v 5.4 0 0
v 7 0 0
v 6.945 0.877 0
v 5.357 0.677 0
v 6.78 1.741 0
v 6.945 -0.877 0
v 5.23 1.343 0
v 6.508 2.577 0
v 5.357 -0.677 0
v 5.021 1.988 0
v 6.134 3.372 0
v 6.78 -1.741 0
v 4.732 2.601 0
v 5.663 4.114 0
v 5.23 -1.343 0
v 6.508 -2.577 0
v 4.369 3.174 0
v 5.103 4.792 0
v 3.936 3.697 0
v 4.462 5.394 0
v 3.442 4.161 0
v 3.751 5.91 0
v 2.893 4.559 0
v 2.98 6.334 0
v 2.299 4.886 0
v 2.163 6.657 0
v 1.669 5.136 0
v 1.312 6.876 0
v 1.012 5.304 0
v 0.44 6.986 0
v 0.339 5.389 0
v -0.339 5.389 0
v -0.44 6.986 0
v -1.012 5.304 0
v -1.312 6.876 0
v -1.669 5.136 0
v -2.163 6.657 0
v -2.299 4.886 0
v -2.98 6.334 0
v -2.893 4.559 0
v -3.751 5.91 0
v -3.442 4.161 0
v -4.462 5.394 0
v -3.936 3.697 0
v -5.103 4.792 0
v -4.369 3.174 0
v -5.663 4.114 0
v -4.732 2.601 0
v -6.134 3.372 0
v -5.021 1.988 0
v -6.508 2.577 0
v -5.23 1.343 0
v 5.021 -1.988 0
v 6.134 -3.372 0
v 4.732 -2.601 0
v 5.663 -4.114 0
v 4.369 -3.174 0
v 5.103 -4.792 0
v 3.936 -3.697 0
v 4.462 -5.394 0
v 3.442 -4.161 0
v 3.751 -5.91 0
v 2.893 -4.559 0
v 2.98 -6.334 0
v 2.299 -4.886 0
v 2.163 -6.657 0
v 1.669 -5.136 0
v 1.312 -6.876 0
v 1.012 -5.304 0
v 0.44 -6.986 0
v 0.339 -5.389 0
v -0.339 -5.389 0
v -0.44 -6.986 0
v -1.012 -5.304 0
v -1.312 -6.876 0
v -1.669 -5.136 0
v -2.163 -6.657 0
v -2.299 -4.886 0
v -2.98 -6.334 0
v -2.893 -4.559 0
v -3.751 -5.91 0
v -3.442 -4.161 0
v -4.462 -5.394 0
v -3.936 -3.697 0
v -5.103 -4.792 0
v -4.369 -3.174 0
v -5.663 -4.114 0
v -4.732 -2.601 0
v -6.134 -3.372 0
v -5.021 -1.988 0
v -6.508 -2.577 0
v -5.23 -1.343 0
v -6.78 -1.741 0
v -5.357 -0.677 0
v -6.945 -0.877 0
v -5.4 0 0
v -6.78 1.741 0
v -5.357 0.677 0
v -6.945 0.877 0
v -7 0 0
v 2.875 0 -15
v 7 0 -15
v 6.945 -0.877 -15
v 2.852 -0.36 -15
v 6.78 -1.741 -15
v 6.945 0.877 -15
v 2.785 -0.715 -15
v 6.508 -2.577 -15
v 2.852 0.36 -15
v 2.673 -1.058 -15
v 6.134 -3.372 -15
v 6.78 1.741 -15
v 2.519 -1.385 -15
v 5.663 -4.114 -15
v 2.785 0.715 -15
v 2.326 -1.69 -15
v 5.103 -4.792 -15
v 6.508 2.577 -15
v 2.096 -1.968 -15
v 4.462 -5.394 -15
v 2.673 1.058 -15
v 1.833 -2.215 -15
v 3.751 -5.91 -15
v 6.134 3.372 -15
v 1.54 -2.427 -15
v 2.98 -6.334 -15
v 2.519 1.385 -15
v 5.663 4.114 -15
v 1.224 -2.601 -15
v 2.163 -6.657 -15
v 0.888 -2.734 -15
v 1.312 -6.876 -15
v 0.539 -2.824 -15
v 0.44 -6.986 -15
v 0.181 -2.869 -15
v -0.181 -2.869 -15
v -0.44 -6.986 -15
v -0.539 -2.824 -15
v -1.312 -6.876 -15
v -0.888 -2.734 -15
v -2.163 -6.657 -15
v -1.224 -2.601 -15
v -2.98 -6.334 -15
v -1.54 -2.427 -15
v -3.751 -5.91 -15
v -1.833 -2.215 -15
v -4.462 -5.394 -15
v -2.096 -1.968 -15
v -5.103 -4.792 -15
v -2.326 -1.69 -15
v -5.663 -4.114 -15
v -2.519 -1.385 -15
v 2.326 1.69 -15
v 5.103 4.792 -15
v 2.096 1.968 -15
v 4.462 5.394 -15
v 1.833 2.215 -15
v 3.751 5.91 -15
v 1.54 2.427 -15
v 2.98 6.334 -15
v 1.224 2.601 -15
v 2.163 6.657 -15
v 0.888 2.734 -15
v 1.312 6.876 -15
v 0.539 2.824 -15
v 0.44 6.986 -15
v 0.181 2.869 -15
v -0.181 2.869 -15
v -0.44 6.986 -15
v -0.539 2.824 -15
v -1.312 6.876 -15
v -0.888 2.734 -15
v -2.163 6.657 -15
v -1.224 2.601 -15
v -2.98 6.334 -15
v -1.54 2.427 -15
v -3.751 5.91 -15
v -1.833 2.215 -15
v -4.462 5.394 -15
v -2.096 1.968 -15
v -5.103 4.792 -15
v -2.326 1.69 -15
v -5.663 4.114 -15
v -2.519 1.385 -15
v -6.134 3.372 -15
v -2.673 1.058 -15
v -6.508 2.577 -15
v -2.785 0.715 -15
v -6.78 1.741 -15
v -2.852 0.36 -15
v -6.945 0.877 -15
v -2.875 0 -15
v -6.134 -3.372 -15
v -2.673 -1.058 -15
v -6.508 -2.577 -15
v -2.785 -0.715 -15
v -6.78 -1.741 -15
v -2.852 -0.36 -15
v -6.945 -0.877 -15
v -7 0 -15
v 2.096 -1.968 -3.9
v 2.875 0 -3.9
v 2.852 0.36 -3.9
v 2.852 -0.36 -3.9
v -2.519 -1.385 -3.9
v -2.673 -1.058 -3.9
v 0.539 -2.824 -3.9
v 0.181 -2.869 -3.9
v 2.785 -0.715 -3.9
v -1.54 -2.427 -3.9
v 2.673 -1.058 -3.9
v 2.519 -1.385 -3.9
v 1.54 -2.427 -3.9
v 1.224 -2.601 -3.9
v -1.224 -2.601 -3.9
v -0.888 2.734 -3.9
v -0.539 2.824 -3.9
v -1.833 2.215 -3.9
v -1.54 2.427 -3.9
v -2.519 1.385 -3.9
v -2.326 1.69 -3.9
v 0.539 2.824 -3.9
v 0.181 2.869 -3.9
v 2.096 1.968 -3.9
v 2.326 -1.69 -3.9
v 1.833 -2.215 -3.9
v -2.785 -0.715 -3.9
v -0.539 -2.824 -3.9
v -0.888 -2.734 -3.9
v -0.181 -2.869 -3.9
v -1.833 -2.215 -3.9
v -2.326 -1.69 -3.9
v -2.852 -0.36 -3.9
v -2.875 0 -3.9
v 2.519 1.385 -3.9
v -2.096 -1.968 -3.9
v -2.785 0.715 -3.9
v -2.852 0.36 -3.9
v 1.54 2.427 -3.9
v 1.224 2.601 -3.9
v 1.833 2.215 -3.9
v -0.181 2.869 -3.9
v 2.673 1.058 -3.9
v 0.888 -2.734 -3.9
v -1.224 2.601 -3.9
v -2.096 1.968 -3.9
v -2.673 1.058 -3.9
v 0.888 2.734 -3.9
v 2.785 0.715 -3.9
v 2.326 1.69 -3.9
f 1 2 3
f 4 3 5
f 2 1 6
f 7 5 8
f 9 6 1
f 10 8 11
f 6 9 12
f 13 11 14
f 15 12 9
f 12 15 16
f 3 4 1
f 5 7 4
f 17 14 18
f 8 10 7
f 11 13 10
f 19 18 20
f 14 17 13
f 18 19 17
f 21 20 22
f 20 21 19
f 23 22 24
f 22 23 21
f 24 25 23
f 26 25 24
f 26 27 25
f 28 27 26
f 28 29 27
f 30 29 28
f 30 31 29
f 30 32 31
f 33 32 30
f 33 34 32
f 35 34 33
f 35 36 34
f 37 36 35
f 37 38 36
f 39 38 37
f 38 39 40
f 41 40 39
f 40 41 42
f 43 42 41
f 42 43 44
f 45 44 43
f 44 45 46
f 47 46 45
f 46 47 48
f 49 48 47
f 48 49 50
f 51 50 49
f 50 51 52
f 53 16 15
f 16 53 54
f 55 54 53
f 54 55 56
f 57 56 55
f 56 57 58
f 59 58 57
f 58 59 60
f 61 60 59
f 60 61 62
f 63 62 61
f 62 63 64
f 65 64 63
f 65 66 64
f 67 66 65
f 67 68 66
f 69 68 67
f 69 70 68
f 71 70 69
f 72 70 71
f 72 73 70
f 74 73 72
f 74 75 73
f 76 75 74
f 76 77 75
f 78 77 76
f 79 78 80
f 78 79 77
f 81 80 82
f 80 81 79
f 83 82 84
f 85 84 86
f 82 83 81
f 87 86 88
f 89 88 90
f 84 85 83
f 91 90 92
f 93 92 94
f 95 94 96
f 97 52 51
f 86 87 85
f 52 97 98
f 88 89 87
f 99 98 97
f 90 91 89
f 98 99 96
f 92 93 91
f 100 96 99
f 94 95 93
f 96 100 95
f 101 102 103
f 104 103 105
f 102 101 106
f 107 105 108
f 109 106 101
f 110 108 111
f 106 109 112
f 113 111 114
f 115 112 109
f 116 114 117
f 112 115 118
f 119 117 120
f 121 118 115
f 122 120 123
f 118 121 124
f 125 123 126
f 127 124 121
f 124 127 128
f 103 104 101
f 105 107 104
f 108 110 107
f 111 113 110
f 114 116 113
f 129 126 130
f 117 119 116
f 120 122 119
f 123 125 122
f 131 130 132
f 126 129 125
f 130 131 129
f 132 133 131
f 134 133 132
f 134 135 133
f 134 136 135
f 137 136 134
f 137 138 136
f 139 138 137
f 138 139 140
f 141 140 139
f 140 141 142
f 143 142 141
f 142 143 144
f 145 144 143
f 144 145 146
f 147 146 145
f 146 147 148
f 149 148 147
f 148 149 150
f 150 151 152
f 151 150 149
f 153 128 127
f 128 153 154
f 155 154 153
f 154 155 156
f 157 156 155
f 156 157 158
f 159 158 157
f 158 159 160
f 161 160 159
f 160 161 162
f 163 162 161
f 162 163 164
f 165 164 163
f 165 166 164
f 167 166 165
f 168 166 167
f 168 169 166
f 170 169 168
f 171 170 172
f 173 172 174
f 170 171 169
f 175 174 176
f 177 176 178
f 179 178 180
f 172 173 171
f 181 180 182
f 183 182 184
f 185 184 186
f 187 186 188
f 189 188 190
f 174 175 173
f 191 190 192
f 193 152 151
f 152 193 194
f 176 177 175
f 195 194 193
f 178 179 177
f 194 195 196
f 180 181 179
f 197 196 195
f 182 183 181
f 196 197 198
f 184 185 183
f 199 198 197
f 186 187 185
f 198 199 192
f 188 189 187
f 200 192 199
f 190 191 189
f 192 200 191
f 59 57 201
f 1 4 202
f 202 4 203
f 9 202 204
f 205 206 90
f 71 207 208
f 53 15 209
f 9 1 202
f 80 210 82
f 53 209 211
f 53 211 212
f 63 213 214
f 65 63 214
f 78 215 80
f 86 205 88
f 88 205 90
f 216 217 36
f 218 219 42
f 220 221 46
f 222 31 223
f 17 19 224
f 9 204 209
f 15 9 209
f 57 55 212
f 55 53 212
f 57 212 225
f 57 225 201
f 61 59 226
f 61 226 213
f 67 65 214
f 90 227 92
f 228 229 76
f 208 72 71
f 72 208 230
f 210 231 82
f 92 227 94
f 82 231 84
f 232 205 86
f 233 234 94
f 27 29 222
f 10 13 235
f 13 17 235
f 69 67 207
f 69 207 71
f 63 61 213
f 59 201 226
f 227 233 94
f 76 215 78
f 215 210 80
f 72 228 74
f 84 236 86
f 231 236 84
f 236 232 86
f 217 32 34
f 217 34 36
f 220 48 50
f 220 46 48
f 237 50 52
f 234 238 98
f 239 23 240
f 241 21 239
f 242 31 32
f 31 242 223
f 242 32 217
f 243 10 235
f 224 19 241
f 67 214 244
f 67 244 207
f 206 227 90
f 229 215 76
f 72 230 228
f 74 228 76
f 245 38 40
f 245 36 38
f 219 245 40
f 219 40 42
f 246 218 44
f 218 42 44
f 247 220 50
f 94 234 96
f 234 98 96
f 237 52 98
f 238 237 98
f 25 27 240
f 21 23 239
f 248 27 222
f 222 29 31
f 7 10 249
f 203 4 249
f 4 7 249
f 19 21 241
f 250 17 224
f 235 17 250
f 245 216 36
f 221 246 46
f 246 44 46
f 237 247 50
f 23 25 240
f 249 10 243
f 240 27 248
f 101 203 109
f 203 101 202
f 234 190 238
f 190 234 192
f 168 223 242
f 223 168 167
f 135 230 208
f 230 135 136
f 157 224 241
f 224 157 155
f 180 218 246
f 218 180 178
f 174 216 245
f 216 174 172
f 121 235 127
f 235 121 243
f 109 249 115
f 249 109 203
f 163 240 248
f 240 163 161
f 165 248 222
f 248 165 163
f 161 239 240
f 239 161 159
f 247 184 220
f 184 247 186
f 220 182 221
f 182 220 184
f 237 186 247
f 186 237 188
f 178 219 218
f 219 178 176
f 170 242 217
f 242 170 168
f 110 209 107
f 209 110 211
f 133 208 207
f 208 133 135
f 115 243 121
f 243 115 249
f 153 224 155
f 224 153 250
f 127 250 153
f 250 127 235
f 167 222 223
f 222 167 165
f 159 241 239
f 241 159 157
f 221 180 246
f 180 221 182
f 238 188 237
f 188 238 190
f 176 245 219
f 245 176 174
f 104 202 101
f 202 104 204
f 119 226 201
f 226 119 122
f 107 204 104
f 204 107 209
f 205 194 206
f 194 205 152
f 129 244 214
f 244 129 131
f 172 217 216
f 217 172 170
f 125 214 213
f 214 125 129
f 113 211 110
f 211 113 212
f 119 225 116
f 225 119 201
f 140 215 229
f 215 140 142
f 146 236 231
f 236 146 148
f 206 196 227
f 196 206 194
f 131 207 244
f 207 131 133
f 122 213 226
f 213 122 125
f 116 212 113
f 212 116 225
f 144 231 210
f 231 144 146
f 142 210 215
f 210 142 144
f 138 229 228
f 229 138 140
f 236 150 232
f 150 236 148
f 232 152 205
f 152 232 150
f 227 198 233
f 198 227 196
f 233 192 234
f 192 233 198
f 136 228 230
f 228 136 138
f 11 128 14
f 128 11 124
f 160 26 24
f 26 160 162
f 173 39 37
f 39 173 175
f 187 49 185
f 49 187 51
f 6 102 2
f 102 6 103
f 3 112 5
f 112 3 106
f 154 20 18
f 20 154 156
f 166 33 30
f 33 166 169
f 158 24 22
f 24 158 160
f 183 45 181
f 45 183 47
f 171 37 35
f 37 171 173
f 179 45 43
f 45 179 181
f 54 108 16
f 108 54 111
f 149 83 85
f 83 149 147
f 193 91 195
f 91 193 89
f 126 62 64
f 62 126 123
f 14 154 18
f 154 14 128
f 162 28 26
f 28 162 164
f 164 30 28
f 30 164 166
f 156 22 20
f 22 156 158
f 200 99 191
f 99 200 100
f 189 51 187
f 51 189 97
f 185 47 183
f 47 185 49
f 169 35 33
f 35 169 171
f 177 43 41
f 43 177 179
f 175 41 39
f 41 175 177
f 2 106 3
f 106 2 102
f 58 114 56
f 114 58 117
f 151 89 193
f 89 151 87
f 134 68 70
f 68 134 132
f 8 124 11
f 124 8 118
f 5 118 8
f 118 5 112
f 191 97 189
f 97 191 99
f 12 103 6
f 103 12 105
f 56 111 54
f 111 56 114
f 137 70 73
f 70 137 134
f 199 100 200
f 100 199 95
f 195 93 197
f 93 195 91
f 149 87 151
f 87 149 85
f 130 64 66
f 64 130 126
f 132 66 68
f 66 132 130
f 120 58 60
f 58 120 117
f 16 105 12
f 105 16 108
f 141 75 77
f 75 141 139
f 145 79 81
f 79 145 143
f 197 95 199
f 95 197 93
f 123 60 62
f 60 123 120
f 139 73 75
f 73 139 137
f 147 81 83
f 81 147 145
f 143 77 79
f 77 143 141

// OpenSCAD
$fn = 50;


difference() {
	union() {
		translate(v = [0, 0, -15.0000000000]) {
			cylinder(h = 15, r = 7.0000000000);
		}
		cylinder(h = 0, r = 13.0000000000);
	}
	union() {
		translate(v = [0, 0, 0]) {
			rotate(a = [0, 0, 0]) {
				difference() {
					union() {
						#translate(v = [0, 0, -15.0000000000]) {
							cylinder(h = 15, r = 2.6000000000);
						}
						#translate(v = [0, 0, -3.9000000000]) {
							cylinder(h = 3.9000000000, r1 = 2.8750000000, r2 = 5.4000000000);
						}
						#translate(v = [0, 0, -15.0000000000]) {
							cylinder(h = 15, r = 2.8750000000);
						}
						#translate(v = [0, 0, -15.0000000000]) {
							cylinder(h = 15, r = 2.6000000000);
						}
					}
					union();
				}
			}
		}
	}
}
